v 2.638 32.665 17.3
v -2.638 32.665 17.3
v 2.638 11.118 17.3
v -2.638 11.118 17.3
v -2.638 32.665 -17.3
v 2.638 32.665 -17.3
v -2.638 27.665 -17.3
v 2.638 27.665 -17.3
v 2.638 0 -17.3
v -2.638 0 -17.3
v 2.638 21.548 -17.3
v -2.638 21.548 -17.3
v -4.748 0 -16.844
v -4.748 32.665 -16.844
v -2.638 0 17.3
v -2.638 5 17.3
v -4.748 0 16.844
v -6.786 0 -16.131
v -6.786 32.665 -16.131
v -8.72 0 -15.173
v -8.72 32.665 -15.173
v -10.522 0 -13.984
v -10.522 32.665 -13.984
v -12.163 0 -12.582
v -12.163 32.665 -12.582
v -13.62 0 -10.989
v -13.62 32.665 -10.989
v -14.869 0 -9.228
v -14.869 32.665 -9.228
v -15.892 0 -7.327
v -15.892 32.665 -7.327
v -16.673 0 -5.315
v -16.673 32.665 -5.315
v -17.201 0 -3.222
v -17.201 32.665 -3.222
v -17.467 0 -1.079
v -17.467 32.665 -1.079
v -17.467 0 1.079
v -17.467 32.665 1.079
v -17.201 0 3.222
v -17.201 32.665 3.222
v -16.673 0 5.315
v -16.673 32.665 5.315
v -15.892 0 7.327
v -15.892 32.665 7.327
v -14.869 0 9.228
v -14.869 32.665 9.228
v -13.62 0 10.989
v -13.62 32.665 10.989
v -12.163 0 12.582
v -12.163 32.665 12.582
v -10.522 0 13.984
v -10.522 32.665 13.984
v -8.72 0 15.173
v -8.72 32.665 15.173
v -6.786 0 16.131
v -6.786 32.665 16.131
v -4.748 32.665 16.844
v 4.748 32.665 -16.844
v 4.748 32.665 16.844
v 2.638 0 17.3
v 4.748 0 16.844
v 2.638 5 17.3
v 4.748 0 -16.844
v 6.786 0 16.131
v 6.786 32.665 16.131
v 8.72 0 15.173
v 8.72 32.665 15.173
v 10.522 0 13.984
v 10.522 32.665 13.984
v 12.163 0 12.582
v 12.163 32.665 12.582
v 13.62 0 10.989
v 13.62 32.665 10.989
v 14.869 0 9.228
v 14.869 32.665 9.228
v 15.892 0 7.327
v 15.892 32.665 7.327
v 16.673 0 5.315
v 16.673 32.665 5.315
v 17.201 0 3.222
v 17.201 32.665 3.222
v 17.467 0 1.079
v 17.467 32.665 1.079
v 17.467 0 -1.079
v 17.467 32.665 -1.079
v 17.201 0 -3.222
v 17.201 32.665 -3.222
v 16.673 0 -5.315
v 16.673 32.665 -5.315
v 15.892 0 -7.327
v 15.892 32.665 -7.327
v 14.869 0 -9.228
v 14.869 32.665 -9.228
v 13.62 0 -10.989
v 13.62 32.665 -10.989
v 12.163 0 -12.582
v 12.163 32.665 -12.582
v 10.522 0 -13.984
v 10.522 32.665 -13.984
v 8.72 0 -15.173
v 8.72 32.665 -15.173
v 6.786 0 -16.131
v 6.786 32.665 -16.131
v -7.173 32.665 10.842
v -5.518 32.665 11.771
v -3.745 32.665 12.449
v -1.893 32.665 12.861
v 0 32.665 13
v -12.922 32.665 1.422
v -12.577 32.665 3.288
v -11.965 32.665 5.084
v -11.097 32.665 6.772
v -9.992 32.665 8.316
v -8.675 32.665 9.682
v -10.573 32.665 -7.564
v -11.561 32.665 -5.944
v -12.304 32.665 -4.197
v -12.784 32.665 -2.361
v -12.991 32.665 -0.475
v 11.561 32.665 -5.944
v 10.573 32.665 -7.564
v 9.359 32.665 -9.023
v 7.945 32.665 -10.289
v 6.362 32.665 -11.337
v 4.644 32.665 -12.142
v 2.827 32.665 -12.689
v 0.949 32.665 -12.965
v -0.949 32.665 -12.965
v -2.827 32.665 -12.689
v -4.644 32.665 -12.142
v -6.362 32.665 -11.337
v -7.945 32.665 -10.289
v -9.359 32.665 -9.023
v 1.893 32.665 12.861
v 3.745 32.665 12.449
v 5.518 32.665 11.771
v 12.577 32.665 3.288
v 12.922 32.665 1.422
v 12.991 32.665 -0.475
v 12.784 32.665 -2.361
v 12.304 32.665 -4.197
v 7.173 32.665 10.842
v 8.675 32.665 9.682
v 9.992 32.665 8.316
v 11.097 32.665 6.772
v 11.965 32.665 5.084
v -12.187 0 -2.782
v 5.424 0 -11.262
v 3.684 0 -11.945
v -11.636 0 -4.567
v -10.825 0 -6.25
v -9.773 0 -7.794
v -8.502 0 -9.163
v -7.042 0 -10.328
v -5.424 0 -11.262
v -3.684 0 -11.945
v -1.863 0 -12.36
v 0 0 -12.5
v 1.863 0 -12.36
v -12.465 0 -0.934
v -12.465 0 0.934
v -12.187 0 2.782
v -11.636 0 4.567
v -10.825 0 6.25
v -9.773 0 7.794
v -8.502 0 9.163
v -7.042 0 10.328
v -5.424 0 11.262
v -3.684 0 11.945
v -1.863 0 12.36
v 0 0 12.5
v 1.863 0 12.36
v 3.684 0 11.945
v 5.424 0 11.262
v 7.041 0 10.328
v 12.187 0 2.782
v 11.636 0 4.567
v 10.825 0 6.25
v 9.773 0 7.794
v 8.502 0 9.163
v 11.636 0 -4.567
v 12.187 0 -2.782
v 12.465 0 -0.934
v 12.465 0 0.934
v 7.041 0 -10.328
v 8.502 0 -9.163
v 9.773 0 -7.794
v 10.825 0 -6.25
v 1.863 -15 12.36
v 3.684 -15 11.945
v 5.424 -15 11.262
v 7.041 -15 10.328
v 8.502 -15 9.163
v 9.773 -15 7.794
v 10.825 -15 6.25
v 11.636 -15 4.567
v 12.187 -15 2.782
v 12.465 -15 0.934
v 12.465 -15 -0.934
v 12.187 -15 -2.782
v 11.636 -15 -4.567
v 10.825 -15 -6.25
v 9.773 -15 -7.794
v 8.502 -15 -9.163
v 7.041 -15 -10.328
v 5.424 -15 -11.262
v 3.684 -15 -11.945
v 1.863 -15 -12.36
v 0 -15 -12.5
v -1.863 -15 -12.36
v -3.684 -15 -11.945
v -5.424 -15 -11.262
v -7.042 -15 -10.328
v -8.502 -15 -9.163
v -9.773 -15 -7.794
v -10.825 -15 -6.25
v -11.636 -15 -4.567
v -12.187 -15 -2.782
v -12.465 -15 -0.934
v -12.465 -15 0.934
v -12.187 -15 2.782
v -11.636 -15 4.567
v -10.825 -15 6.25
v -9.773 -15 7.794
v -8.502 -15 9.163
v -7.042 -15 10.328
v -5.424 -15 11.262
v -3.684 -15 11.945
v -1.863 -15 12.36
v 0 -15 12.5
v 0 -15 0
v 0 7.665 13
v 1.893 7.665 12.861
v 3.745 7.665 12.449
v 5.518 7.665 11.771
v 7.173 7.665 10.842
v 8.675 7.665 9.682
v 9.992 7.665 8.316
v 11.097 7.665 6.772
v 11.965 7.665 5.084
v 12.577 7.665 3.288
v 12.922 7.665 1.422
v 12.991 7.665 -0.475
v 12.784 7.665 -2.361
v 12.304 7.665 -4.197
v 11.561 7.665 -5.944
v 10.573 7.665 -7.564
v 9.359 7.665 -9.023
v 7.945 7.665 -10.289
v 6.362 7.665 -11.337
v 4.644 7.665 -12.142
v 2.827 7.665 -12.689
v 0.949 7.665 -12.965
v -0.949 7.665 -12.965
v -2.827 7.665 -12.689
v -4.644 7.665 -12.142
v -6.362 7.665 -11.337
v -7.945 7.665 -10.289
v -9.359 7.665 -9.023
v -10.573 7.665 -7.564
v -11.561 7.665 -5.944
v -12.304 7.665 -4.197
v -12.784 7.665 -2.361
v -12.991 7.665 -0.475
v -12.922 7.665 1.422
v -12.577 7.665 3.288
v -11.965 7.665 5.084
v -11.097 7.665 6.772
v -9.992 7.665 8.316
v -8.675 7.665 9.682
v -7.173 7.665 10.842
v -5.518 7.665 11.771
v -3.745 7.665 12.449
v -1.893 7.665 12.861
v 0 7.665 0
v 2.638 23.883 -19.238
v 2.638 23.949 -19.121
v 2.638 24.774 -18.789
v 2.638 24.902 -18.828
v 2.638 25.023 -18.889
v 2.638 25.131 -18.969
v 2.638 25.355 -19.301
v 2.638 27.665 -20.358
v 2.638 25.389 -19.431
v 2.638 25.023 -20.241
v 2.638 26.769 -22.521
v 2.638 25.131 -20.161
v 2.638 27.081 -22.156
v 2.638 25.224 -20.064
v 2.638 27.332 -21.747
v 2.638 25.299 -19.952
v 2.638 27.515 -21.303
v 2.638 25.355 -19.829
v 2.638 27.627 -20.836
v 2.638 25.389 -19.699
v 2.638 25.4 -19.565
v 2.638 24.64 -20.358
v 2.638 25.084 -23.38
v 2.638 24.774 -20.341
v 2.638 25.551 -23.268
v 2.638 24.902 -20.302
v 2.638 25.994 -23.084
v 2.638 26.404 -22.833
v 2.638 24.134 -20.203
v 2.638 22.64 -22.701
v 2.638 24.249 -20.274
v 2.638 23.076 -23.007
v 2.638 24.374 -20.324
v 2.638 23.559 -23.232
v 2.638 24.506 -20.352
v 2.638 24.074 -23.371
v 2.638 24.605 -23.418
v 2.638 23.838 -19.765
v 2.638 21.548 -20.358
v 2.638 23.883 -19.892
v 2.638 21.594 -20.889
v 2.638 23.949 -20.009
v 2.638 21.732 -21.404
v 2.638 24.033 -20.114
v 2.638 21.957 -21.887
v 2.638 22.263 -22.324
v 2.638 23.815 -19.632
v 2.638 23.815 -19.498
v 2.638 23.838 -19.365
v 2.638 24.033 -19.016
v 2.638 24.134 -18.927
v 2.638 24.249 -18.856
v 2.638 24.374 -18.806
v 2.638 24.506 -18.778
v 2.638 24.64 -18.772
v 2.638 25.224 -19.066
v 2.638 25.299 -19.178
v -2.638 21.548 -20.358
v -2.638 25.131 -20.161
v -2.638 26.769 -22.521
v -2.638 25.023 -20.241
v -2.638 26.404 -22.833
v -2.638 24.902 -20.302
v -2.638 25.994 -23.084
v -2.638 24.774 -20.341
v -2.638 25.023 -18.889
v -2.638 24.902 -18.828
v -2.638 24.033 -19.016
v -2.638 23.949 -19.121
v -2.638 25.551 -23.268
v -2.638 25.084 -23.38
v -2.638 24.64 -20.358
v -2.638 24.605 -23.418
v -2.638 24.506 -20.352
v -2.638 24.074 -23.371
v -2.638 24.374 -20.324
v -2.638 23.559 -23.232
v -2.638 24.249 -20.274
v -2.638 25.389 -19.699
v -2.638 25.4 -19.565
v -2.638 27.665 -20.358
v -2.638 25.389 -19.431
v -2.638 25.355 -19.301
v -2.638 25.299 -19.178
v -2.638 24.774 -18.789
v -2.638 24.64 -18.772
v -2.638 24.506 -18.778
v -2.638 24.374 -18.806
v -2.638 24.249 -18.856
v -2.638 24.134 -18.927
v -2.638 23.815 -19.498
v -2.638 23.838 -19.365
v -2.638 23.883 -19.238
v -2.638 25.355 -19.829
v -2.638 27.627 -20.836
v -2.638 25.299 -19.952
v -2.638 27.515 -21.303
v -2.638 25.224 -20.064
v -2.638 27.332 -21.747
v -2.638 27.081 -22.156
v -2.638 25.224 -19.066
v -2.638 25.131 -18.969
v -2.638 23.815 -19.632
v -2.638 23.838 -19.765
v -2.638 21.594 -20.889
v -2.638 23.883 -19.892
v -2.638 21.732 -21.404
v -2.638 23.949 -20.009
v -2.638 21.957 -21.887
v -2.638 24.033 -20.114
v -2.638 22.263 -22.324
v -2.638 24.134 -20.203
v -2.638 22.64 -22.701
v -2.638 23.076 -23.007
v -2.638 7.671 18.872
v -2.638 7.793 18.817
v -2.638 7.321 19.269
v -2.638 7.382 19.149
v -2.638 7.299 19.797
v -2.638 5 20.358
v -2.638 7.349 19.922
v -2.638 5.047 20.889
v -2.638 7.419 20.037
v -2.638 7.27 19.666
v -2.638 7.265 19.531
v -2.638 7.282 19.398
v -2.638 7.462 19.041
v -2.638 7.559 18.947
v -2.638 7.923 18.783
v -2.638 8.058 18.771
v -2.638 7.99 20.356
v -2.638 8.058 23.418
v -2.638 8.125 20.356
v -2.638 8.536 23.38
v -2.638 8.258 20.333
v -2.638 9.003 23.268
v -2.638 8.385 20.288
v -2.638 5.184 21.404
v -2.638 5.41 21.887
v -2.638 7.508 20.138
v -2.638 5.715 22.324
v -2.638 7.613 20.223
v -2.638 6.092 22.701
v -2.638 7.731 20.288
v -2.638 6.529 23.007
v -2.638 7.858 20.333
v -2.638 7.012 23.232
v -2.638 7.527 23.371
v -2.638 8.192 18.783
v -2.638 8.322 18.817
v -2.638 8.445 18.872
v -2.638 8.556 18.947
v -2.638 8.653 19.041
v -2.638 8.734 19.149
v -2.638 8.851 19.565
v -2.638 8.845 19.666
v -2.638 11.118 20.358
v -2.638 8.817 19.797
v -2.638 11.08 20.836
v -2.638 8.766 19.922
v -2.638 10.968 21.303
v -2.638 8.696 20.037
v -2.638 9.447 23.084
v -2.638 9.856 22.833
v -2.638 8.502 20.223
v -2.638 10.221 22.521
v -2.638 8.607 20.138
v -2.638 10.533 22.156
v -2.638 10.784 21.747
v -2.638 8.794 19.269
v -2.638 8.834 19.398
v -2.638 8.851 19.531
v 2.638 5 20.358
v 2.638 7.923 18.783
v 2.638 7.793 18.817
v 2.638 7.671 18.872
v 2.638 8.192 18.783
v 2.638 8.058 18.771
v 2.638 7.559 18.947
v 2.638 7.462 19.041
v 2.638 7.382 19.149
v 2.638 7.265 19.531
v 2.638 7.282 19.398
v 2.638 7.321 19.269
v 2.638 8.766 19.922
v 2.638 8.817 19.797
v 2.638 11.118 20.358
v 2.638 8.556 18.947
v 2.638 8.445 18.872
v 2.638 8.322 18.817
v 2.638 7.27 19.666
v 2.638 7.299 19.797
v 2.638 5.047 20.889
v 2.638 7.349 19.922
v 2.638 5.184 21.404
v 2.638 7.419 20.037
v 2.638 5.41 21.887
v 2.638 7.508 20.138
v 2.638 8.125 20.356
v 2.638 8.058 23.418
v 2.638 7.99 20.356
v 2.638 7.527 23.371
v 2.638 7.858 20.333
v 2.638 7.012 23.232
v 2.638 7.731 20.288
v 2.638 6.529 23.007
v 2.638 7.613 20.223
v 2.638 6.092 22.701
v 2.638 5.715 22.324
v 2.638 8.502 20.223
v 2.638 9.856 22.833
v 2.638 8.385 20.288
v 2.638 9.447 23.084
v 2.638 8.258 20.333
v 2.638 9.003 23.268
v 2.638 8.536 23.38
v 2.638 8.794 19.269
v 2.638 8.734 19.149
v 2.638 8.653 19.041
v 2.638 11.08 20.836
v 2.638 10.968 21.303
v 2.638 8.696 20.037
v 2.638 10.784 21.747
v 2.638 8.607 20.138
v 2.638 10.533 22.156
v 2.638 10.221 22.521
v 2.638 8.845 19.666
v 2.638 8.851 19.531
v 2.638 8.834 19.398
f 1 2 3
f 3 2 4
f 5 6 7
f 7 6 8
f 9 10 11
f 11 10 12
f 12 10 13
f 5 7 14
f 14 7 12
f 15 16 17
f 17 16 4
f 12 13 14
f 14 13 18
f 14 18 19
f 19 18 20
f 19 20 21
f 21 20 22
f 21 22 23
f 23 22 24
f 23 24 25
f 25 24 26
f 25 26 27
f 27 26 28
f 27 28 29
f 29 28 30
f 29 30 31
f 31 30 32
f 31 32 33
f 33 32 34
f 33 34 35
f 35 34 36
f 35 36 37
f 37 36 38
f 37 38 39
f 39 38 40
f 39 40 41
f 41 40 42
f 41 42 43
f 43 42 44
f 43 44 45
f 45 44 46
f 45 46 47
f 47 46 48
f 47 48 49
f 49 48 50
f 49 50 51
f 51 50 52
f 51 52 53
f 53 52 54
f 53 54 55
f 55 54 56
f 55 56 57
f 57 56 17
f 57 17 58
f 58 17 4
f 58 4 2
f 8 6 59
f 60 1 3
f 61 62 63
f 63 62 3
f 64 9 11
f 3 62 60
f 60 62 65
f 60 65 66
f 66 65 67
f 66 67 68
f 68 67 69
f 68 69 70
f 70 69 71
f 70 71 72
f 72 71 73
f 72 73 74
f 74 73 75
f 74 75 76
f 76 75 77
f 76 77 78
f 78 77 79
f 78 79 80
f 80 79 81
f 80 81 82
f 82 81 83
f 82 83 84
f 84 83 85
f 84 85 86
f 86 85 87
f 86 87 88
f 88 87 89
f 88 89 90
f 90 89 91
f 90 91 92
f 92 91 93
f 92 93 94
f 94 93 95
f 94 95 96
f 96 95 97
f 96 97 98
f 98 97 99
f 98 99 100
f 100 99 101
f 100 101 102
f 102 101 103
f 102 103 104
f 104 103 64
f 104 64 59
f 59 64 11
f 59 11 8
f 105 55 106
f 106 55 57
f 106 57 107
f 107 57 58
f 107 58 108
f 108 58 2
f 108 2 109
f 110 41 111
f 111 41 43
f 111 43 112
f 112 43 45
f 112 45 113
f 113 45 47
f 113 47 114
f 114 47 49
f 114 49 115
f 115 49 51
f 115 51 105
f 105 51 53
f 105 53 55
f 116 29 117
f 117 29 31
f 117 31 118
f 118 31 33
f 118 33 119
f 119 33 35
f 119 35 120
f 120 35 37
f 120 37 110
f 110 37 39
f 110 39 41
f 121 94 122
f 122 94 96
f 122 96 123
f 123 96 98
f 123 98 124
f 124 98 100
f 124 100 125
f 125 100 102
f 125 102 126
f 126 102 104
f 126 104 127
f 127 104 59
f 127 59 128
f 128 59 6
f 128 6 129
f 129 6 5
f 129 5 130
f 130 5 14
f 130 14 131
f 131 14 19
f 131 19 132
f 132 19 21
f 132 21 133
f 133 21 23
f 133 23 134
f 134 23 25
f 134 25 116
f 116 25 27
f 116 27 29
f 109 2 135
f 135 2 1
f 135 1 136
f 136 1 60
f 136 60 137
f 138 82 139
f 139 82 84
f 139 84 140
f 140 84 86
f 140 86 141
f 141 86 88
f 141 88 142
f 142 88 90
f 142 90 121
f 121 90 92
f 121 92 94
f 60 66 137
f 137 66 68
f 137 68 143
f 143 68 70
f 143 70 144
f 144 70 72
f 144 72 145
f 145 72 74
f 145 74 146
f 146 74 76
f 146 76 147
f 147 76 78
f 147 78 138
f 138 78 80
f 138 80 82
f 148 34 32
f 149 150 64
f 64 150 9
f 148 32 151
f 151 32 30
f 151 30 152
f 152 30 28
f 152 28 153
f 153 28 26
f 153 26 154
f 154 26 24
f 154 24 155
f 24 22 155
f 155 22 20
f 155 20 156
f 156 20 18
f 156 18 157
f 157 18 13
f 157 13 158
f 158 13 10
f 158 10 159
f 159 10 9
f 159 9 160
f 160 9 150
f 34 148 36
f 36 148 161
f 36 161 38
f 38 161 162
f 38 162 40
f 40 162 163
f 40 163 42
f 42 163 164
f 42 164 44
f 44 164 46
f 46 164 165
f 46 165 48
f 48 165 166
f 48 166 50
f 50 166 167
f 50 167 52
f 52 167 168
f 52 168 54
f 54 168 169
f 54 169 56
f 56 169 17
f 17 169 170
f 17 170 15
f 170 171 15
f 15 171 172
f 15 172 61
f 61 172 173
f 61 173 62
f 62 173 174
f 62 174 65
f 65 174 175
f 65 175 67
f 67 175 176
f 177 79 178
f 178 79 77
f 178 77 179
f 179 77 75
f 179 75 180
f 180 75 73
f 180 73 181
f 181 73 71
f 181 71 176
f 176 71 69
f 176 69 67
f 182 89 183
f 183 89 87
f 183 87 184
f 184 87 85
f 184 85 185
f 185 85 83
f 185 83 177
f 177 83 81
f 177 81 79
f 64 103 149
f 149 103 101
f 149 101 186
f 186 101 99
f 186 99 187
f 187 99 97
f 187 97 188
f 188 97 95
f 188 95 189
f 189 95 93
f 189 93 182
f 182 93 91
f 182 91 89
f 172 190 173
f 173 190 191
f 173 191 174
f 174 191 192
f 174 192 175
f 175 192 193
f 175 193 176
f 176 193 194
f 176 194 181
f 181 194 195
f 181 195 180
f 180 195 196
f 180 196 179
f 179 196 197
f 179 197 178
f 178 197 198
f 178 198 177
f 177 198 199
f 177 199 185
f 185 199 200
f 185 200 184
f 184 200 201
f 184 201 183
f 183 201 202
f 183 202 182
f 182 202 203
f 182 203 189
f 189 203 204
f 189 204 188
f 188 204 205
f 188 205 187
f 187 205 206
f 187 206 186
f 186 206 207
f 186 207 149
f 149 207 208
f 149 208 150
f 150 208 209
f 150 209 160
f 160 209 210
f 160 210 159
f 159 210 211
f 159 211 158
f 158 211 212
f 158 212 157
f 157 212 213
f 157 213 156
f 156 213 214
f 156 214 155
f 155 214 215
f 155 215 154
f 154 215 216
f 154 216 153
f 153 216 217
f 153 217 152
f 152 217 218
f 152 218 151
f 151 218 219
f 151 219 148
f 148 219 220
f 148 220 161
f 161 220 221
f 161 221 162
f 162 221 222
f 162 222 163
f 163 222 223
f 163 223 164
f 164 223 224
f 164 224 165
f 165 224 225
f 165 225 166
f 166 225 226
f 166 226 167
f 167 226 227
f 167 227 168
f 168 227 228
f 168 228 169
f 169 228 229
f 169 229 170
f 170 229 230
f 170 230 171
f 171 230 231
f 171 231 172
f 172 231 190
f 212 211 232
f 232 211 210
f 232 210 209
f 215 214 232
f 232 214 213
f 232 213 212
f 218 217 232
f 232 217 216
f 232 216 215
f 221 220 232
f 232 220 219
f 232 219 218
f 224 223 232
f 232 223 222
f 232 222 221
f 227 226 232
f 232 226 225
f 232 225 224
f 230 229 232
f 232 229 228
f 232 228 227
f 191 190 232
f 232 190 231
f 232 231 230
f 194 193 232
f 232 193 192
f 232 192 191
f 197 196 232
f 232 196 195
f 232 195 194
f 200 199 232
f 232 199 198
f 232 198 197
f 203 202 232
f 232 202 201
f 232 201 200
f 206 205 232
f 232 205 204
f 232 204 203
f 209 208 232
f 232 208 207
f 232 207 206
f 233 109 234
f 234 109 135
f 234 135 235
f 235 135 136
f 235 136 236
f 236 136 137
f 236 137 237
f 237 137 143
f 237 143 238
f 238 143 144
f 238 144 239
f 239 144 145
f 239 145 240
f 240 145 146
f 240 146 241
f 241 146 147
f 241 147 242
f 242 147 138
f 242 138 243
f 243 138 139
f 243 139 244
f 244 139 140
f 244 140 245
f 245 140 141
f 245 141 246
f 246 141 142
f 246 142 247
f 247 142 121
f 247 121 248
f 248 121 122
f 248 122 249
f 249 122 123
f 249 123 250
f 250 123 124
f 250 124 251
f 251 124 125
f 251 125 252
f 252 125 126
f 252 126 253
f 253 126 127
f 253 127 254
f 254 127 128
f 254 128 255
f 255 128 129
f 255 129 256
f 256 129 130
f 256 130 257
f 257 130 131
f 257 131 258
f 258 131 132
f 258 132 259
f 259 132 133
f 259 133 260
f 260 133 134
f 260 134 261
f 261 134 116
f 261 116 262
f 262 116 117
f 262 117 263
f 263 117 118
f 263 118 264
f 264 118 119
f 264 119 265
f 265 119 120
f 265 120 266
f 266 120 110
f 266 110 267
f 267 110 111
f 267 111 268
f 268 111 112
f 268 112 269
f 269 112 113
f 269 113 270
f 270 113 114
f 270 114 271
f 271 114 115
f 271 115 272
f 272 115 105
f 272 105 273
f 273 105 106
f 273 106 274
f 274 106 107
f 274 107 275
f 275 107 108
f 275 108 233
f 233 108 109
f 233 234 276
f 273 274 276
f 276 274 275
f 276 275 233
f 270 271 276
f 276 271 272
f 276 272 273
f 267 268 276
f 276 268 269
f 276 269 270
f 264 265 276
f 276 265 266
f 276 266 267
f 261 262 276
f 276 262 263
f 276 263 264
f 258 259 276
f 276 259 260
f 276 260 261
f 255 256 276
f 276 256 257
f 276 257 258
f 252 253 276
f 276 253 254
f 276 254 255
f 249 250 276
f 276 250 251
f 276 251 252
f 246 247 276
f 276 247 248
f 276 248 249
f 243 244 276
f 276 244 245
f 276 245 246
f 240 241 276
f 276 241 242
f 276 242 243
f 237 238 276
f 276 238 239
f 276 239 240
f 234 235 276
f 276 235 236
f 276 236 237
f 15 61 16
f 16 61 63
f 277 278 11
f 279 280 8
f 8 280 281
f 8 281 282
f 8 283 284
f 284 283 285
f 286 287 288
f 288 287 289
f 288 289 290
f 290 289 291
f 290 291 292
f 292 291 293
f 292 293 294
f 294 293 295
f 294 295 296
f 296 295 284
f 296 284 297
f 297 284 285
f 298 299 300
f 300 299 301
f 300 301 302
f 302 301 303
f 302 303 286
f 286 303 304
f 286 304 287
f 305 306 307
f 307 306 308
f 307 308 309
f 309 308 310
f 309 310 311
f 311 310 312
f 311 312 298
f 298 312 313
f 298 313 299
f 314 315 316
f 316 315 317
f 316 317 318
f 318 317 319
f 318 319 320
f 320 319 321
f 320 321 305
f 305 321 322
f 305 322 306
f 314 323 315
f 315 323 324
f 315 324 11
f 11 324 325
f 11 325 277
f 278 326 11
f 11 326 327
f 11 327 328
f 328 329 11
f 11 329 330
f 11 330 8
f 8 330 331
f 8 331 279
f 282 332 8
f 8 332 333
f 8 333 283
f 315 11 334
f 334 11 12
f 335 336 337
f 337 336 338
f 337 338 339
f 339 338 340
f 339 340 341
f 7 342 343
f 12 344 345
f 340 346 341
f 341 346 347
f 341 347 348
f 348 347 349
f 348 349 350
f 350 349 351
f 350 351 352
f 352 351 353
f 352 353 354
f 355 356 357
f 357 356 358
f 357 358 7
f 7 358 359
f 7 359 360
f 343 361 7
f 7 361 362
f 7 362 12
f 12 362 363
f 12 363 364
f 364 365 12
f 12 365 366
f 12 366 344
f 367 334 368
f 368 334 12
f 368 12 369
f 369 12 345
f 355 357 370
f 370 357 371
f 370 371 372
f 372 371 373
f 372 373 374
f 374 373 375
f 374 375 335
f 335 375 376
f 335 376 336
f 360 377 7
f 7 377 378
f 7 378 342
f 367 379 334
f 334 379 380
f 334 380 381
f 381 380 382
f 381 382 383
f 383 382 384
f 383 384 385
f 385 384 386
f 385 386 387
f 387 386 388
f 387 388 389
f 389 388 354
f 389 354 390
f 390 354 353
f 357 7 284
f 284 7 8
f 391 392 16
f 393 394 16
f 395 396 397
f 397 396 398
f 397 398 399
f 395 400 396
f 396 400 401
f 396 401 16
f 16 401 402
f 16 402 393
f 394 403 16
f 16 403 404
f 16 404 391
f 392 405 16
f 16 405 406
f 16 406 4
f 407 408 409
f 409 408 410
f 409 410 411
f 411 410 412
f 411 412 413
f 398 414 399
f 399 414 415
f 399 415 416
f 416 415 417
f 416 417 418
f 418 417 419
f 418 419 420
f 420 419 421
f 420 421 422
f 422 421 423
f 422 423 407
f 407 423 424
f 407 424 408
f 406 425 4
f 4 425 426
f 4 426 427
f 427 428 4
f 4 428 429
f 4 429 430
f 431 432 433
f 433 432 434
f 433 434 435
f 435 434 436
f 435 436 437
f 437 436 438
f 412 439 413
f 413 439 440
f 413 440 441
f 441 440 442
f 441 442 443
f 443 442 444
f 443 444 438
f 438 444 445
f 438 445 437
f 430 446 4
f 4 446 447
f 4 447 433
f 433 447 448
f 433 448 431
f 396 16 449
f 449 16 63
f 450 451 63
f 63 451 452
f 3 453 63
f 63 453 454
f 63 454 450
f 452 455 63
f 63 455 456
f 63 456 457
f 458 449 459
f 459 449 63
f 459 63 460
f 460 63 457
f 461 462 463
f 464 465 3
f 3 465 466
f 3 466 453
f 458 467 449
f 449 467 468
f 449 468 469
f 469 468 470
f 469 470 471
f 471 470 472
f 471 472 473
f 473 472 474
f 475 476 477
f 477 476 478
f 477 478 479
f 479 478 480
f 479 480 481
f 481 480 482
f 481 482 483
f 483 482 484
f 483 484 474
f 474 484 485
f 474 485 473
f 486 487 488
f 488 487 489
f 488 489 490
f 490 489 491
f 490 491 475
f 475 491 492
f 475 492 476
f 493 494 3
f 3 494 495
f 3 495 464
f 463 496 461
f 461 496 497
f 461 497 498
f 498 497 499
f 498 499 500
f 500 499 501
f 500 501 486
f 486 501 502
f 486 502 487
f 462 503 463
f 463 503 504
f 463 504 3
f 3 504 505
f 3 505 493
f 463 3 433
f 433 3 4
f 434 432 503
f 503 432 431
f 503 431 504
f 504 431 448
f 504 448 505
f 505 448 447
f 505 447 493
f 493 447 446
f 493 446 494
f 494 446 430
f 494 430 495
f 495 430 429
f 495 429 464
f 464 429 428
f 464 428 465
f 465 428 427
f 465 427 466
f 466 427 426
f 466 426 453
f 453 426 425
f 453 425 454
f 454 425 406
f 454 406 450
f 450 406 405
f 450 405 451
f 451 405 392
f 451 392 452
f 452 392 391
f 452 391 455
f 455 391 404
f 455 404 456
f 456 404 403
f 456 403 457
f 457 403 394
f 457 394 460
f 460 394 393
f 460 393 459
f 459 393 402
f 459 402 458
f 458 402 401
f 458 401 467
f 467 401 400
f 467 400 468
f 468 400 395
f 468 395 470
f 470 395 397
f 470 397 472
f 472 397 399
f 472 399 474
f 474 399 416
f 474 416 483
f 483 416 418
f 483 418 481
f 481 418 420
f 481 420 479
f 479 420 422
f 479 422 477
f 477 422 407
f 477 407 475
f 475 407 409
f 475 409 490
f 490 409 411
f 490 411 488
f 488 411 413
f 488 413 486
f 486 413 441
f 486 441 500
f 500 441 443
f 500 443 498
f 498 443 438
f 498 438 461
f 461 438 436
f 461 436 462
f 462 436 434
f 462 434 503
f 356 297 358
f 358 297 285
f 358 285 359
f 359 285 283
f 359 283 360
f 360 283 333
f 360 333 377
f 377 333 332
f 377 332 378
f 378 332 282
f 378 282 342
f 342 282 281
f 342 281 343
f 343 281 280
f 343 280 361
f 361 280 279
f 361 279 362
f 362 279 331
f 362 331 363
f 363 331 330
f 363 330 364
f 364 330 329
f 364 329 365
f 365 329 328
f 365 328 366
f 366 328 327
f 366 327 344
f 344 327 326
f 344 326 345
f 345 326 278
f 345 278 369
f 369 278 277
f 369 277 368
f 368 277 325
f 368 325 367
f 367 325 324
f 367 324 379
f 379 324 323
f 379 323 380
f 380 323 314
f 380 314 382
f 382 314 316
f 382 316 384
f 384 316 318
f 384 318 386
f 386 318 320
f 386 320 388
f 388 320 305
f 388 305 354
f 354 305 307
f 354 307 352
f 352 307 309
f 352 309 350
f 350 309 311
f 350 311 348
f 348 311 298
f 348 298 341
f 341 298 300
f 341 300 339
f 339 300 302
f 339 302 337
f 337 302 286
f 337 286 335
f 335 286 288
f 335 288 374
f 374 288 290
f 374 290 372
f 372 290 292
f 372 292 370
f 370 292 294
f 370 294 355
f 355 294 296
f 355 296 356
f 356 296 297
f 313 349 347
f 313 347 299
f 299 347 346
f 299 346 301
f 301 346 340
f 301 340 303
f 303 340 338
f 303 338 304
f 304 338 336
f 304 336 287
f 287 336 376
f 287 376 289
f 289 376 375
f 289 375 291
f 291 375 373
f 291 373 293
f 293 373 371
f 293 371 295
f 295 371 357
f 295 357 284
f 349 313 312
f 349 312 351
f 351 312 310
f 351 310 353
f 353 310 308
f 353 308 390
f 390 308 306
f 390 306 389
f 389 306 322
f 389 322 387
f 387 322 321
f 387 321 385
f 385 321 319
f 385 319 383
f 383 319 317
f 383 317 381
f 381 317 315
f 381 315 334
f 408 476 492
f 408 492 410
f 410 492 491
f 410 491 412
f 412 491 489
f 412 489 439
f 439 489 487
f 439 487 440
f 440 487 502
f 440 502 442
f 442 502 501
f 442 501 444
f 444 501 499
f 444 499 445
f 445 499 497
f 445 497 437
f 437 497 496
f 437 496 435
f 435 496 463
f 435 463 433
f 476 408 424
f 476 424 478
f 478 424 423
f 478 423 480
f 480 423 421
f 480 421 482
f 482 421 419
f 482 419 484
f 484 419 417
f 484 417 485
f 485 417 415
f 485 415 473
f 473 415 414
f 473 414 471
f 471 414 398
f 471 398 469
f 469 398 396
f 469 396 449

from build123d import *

# Parameters (mm, degrees)
SKETCH2_R           = 17.5
BOSS_EXTRUDE1_DEPTH = 32.665
SKETCH3_R           = 12.5
BOSS_EXTRUDE2_DEPTH = 15
SKETCH4_R           = 13
CUT_EXTRUDE1_DEPTH  = 25
SKETCH8_W           = 35
SKETCH8_H           = 1.857450862
CUT_EXTRUDE4_DEPTH  = 35
SKETCH11_W          = 35
SKETCH11_H          = 2.234434129
CUT_EXTRUDE8_DEPTH  = 35
SKETCH13_W          = 5.276362384
SKETCH13_H          = 6.1175
BOSS_EXTRUDE3_DEPTH = 6.1175
SKETCH14_W          = 5.276362384
SKETCH14_H          = 6.1175
BOSS_EXTRUDE4_DEPTH = 6.1175
SKETCH18_R          = 0.79375
CUT_EXTRUDE11_DEPTH = 6.1175
SKETCH15_R          = 0.79375
CUT_EXTRUDE12_DEPTH = 6.1175
FILLET8_R           = 3.06
FILLET9_R           = 3.06
FILLET10_R          = 3.06
FILLET11_R          = 3.06


with BuildPart() as part:
    # Sketch2 → Boss-Extrude1 (new body)
    with BuildSketch(Plane(origin=(0, 0, 0), x_dir=(1, 0, 0), z_dir=(0, 1, 0))):
        with Locations(Location((0, 0, 0), (0, 0, 270))):
            Circle(SKETCH2_R)
    extrude(amount=BOSS_EXTRUDE1_DEPTH)

    # Sketch3 → Boss-Extrude2 (add)
    with BuildSketch(Plane.XZ):
        with Locations(Location((0, 0, 0), (0, 0, 270))):
            Circle(SKETCH3_R)
    extrude(amount=BOSS_EXTRUDE2_DEPTH)

    # Sketch4 → Cut-Extrude1 (cut)
    with BuildSketch(Plane(origin=(0, 32.665, 0), x_dir=(1, 0, 0), z_dir=(0, 1, 0))):
        with Locations(Location((0, 0, 0), (0, 0, 270))):
            Circle(SKETCH4_R)
    extrude(amount=-CUT_EXTRUDE1_DEPTH, mode=Mode.SUBTRACT)

    # Sketch8 → Cut-Extrude4 (cut)
    with BuildSketch(Plane(origin=(0, 32.665, 0), x_dir=(1, 0, 0), z_dir=(0, 1, 0))):
        with Locations((0, -18.228725431)):
            Rectangle(SKETCH8_W, SKETCH8_H)
    extrude(amount=-CUT_EXTRUDE4_DEPTH, mode=Mode.SUBTRACT)

    # Sketch11 → Cut-Extrude8 (cut)
    with BuildSketch(Plane(origin=(0, 32.665, 0), x_dir=(1, 0, 0), z_dir=(0, 1, 0))):
        with Locations((0, 18.417217065)):
            Rectangle(SKETCH11_W, SKETCH11_H)
    extrude(amount=-CUT_EXTRUDE8_DEPTH, mode=Mode.SUBTRACT)

    # Sketch13 → Boss-Extrude3 (add)
    with BuildSketch(Plane(origin=(0, 0, -17.3), x_dir=(-1, 0, 0), z_dir=(0, 0, -1))):
        with Locations((0, 24.60625)):
            Rectangle(SKETCH13_W, SKETCH13_H)
    extrude(amount=BOSS_EXTRUDE3_DEPTH)

    # Sketch14 → Boss-Extrude4 (add)
    with BuildSketch(Plane.XY.offset(17.3)):
        with Locations((0, 8.05875)):
            Rectangle(SKETCH14_W, SKETCH14_H)
    extrude(amount=BOSS_EXTRUDE4_DEPTH)

    # Sketch18 → Cut-Extrude11 (cut)
    with BuildSketch(Plane(origin=(2.638181192, 0, 0), x_dir=(0, 0, -1), z_dir=(1, 0, 0))):
        with Locations((-19.565, 8.0575)):
            Circle(SKETCH18_R)
    extrude(amount=-CUT_EXTRUDE11_DEPTH, mode=Mode.SUBTRACT)

    # Sketch15 → Cut-Extrude12 (cut)
    with BuildSketch(Plane(origin=(2.638181192, 0, 0), x_dir=(0, 0, -1), z_dir=(1, 0, 0))):
        with Locations(Location((19.565, 24.60625, 0), (0, 0, 90))):
            Circle(SKETCH15_R)
    extrude(amount=-CUT_EXTRUDE12_DEPTH, mode=Mode.SUBTRACT)

    # Fillet8
    fillet8_edges = [part.edges().sort_by_distance(p)[0] for p in [
        (0, 27.665, -23.4175),
    ]]
    fillet(fillet8_edges, radius=FILLET8_R)

    # Fillet9
    # the kernel refuses this fillet: 3.06 mm, written as the material it takes off along each edge
    with BuildSketch(Plane(origin=(-10.288181192, 21.5475, -23.4175), x_dir=(0, 1, 0), z_dir=(1, 0, 0))) as fillet9_piece_1:
        with BuildLine():
            CenterArc((FILLET9_R, FILLET9_R), FILLET9_R, 180, 90)
            Line((0, FILLET9_R), (0, 0))
            Line((0, 0), (FILLET9_R, 0))
        make_face()
    extrude(amount=20.576362383, mode=Mode.SUBTRACT)

    # Fillet10
    fillet10_edges = [part.edges().sort_by_distance(p)[0] for p in [
        (0, 11.1175, 23.4175),
    ]]
    fillet(fillet10_edges, radius=FILLET10_R)

    # Fillet11
    # the kernel refuses this fillet: 3.06 mm, written as the material it takes off along each edge
    with BuildSketch(Plane(origin=(10.288181192, 5, 23.4175), x_dir=(0, 1, 0), z_dir=(-1, 0, 0))) as fillet11_piece_1:
        with BuildLine():
            CenterArc((FILLET11_R, FILLET11_R), FILLET11_R, 180, 90)
            Line((0, FILLET11_R), (0, 0))
            Line((0, 0), (FILLET11_R, 0))
        make_face()
    extrude(amount=20.576362383, mode=Mode.SUBTRACT)


solid = part.part
